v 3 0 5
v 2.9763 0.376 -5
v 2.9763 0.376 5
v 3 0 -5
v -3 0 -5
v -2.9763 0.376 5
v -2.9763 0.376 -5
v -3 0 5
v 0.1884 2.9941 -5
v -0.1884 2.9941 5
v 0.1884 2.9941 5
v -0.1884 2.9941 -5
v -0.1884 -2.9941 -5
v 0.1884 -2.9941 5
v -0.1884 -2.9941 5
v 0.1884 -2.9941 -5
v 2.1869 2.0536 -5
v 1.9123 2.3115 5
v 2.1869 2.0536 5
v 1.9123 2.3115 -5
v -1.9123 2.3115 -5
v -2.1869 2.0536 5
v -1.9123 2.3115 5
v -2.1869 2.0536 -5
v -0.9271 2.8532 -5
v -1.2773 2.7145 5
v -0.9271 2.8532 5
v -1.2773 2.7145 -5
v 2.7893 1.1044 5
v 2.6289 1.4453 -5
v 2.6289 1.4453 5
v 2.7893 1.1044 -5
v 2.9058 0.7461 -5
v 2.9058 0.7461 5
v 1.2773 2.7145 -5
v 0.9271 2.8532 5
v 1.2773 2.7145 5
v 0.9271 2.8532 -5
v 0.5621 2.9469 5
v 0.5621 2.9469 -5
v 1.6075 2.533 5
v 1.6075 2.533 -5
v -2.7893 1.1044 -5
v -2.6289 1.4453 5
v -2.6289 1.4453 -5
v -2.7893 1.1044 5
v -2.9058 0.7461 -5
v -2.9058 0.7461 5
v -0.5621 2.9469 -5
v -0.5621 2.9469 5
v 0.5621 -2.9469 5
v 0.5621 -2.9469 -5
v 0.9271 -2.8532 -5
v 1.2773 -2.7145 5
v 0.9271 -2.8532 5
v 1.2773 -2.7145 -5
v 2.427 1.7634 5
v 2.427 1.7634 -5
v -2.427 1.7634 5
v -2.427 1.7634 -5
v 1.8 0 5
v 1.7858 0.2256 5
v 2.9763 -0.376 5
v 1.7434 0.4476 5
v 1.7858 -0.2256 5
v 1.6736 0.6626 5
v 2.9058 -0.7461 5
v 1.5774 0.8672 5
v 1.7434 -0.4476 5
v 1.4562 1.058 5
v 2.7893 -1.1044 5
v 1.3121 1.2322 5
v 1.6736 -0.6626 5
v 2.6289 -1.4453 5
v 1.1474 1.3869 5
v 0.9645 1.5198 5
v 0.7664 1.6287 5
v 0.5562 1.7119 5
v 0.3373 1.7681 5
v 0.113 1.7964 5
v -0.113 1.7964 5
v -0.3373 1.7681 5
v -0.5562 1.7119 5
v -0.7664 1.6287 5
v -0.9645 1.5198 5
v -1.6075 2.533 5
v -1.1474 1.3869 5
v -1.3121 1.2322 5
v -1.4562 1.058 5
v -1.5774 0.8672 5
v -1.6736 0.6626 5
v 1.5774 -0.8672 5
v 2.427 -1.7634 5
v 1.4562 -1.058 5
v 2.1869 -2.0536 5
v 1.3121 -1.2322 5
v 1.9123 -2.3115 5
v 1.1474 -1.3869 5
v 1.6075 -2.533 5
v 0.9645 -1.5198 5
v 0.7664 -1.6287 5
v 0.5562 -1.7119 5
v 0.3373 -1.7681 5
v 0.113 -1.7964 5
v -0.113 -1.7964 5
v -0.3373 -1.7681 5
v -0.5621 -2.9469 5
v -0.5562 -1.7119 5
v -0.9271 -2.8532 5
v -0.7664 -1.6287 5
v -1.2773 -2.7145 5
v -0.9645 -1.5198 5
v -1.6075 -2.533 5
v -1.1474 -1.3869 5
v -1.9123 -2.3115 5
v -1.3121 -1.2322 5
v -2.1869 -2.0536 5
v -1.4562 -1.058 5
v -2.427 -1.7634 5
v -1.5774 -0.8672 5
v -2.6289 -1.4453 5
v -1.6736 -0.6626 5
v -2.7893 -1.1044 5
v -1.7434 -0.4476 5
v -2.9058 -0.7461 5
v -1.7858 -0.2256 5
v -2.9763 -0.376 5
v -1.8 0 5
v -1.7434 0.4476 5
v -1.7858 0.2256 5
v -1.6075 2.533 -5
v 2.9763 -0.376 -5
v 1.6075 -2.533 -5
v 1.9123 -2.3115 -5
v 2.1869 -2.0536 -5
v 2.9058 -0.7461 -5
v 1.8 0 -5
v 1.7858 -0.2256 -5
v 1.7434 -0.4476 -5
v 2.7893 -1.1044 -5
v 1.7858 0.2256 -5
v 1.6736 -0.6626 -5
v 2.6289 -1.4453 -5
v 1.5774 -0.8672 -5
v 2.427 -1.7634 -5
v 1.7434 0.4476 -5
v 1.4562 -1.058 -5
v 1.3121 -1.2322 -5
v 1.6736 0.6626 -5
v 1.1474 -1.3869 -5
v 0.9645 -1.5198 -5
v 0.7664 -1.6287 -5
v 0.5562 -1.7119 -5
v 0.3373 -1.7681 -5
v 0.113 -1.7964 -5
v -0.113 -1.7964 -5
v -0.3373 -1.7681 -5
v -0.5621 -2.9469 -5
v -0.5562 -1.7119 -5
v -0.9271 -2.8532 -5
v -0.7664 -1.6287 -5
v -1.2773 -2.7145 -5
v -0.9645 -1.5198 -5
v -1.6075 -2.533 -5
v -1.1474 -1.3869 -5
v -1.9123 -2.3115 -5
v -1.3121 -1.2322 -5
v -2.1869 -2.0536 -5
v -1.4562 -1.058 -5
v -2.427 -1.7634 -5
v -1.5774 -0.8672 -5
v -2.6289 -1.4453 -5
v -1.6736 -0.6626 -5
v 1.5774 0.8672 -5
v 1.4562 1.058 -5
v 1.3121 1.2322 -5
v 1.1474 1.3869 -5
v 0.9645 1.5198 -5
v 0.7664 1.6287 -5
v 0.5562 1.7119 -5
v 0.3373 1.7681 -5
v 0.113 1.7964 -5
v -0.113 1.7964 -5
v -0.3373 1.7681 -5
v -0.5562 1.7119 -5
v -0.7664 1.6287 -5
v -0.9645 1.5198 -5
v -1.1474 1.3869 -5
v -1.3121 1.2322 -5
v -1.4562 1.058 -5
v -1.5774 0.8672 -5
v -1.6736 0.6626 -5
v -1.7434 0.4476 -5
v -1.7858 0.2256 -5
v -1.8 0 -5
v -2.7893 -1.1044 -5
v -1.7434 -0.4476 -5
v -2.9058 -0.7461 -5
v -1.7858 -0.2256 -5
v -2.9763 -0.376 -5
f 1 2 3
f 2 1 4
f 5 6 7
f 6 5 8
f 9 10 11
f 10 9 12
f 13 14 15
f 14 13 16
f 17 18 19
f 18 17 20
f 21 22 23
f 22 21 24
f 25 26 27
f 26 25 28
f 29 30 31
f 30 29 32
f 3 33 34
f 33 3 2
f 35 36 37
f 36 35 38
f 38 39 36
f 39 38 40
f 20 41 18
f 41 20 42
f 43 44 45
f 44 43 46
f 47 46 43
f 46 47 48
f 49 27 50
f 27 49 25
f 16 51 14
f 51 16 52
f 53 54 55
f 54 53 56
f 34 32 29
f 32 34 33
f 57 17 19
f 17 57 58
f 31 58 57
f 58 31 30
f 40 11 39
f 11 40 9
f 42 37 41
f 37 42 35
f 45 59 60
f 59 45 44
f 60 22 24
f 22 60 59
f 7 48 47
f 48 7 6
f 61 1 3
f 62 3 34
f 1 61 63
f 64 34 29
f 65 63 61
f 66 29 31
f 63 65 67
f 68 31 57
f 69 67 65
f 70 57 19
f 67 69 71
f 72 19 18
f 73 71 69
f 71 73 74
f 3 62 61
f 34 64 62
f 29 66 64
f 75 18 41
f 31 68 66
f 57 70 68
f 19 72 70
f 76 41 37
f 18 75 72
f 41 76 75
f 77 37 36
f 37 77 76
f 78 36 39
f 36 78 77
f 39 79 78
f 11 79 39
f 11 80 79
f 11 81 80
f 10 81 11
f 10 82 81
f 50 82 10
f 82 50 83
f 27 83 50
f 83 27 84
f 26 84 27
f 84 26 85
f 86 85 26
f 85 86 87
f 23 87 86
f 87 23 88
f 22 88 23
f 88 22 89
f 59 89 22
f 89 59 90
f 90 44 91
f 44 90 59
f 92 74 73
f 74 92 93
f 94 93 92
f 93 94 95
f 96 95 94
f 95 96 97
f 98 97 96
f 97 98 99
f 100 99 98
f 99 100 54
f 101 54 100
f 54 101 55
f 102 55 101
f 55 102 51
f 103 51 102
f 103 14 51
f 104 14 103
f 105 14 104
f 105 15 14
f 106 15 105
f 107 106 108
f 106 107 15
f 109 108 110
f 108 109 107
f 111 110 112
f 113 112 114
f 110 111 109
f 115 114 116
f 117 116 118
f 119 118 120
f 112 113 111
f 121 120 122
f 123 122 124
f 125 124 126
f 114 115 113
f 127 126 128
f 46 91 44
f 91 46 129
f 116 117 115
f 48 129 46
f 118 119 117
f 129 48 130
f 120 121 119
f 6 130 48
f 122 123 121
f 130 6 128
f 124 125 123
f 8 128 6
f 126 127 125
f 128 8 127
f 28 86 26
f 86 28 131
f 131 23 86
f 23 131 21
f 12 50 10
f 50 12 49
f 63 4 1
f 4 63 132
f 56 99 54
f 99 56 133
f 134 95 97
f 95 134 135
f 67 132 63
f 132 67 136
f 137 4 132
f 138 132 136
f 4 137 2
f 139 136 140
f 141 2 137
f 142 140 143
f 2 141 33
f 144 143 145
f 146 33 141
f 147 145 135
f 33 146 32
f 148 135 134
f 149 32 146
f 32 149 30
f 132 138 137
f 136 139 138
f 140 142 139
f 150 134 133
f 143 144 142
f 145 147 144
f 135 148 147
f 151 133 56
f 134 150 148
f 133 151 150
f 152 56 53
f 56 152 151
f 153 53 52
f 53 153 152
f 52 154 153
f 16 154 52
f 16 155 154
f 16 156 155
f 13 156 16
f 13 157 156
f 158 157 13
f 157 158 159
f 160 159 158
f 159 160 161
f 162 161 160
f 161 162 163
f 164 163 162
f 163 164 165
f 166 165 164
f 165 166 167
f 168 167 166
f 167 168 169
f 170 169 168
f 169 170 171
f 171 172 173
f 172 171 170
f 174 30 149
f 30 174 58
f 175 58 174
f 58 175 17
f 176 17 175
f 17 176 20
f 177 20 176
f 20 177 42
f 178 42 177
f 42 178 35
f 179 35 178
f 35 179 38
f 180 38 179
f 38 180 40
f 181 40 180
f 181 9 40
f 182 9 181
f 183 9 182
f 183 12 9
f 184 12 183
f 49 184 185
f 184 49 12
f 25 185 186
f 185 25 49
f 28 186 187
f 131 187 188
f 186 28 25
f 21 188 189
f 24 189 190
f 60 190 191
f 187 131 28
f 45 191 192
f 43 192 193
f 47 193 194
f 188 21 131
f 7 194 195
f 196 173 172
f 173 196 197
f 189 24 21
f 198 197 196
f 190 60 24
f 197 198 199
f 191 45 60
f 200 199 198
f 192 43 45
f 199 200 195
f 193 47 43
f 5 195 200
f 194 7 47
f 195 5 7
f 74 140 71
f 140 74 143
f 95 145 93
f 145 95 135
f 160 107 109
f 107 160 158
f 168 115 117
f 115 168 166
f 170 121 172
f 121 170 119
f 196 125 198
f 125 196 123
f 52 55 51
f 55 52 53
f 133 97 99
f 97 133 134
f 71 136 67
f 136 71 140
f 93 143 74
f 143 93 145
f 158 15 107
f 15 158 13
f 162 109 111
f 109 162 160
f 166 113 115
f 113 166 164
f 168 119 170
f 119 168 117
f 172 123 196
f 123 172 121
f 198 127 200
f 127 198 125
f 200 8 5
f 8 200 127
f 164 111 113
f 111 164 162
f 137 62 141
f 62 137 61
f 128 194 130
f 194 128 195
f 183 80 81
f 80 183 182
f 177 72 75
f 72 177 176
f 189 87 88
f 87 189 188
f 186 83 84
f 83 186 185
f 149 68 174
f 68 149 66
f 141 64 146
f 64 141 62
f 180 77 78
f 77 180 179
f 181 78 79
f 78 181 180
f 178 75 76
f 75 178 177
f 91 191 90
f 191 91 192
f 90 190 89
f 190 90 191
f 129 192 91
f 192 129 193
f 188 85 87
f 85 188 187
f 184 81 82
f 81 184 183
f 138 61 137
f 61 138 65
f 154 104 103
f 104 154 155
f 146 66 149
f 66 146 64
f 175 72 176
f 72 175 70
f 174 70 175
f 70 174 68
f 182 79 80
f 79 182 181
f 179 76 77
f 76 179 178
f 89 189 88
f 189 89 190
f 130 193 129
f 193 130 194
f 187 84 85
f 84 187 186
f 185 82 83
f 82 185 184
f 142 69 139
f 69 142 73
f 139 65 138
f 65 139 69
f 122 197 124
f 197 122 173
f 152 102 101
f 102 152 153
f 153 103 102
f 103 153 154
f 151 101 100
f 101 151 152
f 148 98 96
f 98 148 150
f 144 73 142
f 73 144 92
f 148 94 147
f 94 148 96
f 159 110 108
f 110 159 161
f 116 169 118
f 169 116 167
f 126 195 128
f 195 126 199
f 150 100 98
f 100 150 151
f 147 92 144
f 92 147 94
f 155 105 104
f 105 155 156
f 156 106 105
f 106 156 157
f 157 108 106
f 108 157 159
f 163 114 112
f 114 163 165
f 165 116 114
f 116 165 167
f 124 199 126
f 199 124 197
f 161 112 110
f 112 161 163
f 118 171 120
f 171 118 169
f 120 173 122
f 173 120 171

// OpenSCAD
$fn = 50;


difference() {
	union() {
		translate(v = [0, 0, -5.0000000000]) {
			cylinder(h = 10, r = 3.0000000000);
		}
	}
	union() {
		translate(v = [0, 0, -100.0000000000]) {
			cylinder(h = 200, r = 1.8000000000);
		}
	}
}
